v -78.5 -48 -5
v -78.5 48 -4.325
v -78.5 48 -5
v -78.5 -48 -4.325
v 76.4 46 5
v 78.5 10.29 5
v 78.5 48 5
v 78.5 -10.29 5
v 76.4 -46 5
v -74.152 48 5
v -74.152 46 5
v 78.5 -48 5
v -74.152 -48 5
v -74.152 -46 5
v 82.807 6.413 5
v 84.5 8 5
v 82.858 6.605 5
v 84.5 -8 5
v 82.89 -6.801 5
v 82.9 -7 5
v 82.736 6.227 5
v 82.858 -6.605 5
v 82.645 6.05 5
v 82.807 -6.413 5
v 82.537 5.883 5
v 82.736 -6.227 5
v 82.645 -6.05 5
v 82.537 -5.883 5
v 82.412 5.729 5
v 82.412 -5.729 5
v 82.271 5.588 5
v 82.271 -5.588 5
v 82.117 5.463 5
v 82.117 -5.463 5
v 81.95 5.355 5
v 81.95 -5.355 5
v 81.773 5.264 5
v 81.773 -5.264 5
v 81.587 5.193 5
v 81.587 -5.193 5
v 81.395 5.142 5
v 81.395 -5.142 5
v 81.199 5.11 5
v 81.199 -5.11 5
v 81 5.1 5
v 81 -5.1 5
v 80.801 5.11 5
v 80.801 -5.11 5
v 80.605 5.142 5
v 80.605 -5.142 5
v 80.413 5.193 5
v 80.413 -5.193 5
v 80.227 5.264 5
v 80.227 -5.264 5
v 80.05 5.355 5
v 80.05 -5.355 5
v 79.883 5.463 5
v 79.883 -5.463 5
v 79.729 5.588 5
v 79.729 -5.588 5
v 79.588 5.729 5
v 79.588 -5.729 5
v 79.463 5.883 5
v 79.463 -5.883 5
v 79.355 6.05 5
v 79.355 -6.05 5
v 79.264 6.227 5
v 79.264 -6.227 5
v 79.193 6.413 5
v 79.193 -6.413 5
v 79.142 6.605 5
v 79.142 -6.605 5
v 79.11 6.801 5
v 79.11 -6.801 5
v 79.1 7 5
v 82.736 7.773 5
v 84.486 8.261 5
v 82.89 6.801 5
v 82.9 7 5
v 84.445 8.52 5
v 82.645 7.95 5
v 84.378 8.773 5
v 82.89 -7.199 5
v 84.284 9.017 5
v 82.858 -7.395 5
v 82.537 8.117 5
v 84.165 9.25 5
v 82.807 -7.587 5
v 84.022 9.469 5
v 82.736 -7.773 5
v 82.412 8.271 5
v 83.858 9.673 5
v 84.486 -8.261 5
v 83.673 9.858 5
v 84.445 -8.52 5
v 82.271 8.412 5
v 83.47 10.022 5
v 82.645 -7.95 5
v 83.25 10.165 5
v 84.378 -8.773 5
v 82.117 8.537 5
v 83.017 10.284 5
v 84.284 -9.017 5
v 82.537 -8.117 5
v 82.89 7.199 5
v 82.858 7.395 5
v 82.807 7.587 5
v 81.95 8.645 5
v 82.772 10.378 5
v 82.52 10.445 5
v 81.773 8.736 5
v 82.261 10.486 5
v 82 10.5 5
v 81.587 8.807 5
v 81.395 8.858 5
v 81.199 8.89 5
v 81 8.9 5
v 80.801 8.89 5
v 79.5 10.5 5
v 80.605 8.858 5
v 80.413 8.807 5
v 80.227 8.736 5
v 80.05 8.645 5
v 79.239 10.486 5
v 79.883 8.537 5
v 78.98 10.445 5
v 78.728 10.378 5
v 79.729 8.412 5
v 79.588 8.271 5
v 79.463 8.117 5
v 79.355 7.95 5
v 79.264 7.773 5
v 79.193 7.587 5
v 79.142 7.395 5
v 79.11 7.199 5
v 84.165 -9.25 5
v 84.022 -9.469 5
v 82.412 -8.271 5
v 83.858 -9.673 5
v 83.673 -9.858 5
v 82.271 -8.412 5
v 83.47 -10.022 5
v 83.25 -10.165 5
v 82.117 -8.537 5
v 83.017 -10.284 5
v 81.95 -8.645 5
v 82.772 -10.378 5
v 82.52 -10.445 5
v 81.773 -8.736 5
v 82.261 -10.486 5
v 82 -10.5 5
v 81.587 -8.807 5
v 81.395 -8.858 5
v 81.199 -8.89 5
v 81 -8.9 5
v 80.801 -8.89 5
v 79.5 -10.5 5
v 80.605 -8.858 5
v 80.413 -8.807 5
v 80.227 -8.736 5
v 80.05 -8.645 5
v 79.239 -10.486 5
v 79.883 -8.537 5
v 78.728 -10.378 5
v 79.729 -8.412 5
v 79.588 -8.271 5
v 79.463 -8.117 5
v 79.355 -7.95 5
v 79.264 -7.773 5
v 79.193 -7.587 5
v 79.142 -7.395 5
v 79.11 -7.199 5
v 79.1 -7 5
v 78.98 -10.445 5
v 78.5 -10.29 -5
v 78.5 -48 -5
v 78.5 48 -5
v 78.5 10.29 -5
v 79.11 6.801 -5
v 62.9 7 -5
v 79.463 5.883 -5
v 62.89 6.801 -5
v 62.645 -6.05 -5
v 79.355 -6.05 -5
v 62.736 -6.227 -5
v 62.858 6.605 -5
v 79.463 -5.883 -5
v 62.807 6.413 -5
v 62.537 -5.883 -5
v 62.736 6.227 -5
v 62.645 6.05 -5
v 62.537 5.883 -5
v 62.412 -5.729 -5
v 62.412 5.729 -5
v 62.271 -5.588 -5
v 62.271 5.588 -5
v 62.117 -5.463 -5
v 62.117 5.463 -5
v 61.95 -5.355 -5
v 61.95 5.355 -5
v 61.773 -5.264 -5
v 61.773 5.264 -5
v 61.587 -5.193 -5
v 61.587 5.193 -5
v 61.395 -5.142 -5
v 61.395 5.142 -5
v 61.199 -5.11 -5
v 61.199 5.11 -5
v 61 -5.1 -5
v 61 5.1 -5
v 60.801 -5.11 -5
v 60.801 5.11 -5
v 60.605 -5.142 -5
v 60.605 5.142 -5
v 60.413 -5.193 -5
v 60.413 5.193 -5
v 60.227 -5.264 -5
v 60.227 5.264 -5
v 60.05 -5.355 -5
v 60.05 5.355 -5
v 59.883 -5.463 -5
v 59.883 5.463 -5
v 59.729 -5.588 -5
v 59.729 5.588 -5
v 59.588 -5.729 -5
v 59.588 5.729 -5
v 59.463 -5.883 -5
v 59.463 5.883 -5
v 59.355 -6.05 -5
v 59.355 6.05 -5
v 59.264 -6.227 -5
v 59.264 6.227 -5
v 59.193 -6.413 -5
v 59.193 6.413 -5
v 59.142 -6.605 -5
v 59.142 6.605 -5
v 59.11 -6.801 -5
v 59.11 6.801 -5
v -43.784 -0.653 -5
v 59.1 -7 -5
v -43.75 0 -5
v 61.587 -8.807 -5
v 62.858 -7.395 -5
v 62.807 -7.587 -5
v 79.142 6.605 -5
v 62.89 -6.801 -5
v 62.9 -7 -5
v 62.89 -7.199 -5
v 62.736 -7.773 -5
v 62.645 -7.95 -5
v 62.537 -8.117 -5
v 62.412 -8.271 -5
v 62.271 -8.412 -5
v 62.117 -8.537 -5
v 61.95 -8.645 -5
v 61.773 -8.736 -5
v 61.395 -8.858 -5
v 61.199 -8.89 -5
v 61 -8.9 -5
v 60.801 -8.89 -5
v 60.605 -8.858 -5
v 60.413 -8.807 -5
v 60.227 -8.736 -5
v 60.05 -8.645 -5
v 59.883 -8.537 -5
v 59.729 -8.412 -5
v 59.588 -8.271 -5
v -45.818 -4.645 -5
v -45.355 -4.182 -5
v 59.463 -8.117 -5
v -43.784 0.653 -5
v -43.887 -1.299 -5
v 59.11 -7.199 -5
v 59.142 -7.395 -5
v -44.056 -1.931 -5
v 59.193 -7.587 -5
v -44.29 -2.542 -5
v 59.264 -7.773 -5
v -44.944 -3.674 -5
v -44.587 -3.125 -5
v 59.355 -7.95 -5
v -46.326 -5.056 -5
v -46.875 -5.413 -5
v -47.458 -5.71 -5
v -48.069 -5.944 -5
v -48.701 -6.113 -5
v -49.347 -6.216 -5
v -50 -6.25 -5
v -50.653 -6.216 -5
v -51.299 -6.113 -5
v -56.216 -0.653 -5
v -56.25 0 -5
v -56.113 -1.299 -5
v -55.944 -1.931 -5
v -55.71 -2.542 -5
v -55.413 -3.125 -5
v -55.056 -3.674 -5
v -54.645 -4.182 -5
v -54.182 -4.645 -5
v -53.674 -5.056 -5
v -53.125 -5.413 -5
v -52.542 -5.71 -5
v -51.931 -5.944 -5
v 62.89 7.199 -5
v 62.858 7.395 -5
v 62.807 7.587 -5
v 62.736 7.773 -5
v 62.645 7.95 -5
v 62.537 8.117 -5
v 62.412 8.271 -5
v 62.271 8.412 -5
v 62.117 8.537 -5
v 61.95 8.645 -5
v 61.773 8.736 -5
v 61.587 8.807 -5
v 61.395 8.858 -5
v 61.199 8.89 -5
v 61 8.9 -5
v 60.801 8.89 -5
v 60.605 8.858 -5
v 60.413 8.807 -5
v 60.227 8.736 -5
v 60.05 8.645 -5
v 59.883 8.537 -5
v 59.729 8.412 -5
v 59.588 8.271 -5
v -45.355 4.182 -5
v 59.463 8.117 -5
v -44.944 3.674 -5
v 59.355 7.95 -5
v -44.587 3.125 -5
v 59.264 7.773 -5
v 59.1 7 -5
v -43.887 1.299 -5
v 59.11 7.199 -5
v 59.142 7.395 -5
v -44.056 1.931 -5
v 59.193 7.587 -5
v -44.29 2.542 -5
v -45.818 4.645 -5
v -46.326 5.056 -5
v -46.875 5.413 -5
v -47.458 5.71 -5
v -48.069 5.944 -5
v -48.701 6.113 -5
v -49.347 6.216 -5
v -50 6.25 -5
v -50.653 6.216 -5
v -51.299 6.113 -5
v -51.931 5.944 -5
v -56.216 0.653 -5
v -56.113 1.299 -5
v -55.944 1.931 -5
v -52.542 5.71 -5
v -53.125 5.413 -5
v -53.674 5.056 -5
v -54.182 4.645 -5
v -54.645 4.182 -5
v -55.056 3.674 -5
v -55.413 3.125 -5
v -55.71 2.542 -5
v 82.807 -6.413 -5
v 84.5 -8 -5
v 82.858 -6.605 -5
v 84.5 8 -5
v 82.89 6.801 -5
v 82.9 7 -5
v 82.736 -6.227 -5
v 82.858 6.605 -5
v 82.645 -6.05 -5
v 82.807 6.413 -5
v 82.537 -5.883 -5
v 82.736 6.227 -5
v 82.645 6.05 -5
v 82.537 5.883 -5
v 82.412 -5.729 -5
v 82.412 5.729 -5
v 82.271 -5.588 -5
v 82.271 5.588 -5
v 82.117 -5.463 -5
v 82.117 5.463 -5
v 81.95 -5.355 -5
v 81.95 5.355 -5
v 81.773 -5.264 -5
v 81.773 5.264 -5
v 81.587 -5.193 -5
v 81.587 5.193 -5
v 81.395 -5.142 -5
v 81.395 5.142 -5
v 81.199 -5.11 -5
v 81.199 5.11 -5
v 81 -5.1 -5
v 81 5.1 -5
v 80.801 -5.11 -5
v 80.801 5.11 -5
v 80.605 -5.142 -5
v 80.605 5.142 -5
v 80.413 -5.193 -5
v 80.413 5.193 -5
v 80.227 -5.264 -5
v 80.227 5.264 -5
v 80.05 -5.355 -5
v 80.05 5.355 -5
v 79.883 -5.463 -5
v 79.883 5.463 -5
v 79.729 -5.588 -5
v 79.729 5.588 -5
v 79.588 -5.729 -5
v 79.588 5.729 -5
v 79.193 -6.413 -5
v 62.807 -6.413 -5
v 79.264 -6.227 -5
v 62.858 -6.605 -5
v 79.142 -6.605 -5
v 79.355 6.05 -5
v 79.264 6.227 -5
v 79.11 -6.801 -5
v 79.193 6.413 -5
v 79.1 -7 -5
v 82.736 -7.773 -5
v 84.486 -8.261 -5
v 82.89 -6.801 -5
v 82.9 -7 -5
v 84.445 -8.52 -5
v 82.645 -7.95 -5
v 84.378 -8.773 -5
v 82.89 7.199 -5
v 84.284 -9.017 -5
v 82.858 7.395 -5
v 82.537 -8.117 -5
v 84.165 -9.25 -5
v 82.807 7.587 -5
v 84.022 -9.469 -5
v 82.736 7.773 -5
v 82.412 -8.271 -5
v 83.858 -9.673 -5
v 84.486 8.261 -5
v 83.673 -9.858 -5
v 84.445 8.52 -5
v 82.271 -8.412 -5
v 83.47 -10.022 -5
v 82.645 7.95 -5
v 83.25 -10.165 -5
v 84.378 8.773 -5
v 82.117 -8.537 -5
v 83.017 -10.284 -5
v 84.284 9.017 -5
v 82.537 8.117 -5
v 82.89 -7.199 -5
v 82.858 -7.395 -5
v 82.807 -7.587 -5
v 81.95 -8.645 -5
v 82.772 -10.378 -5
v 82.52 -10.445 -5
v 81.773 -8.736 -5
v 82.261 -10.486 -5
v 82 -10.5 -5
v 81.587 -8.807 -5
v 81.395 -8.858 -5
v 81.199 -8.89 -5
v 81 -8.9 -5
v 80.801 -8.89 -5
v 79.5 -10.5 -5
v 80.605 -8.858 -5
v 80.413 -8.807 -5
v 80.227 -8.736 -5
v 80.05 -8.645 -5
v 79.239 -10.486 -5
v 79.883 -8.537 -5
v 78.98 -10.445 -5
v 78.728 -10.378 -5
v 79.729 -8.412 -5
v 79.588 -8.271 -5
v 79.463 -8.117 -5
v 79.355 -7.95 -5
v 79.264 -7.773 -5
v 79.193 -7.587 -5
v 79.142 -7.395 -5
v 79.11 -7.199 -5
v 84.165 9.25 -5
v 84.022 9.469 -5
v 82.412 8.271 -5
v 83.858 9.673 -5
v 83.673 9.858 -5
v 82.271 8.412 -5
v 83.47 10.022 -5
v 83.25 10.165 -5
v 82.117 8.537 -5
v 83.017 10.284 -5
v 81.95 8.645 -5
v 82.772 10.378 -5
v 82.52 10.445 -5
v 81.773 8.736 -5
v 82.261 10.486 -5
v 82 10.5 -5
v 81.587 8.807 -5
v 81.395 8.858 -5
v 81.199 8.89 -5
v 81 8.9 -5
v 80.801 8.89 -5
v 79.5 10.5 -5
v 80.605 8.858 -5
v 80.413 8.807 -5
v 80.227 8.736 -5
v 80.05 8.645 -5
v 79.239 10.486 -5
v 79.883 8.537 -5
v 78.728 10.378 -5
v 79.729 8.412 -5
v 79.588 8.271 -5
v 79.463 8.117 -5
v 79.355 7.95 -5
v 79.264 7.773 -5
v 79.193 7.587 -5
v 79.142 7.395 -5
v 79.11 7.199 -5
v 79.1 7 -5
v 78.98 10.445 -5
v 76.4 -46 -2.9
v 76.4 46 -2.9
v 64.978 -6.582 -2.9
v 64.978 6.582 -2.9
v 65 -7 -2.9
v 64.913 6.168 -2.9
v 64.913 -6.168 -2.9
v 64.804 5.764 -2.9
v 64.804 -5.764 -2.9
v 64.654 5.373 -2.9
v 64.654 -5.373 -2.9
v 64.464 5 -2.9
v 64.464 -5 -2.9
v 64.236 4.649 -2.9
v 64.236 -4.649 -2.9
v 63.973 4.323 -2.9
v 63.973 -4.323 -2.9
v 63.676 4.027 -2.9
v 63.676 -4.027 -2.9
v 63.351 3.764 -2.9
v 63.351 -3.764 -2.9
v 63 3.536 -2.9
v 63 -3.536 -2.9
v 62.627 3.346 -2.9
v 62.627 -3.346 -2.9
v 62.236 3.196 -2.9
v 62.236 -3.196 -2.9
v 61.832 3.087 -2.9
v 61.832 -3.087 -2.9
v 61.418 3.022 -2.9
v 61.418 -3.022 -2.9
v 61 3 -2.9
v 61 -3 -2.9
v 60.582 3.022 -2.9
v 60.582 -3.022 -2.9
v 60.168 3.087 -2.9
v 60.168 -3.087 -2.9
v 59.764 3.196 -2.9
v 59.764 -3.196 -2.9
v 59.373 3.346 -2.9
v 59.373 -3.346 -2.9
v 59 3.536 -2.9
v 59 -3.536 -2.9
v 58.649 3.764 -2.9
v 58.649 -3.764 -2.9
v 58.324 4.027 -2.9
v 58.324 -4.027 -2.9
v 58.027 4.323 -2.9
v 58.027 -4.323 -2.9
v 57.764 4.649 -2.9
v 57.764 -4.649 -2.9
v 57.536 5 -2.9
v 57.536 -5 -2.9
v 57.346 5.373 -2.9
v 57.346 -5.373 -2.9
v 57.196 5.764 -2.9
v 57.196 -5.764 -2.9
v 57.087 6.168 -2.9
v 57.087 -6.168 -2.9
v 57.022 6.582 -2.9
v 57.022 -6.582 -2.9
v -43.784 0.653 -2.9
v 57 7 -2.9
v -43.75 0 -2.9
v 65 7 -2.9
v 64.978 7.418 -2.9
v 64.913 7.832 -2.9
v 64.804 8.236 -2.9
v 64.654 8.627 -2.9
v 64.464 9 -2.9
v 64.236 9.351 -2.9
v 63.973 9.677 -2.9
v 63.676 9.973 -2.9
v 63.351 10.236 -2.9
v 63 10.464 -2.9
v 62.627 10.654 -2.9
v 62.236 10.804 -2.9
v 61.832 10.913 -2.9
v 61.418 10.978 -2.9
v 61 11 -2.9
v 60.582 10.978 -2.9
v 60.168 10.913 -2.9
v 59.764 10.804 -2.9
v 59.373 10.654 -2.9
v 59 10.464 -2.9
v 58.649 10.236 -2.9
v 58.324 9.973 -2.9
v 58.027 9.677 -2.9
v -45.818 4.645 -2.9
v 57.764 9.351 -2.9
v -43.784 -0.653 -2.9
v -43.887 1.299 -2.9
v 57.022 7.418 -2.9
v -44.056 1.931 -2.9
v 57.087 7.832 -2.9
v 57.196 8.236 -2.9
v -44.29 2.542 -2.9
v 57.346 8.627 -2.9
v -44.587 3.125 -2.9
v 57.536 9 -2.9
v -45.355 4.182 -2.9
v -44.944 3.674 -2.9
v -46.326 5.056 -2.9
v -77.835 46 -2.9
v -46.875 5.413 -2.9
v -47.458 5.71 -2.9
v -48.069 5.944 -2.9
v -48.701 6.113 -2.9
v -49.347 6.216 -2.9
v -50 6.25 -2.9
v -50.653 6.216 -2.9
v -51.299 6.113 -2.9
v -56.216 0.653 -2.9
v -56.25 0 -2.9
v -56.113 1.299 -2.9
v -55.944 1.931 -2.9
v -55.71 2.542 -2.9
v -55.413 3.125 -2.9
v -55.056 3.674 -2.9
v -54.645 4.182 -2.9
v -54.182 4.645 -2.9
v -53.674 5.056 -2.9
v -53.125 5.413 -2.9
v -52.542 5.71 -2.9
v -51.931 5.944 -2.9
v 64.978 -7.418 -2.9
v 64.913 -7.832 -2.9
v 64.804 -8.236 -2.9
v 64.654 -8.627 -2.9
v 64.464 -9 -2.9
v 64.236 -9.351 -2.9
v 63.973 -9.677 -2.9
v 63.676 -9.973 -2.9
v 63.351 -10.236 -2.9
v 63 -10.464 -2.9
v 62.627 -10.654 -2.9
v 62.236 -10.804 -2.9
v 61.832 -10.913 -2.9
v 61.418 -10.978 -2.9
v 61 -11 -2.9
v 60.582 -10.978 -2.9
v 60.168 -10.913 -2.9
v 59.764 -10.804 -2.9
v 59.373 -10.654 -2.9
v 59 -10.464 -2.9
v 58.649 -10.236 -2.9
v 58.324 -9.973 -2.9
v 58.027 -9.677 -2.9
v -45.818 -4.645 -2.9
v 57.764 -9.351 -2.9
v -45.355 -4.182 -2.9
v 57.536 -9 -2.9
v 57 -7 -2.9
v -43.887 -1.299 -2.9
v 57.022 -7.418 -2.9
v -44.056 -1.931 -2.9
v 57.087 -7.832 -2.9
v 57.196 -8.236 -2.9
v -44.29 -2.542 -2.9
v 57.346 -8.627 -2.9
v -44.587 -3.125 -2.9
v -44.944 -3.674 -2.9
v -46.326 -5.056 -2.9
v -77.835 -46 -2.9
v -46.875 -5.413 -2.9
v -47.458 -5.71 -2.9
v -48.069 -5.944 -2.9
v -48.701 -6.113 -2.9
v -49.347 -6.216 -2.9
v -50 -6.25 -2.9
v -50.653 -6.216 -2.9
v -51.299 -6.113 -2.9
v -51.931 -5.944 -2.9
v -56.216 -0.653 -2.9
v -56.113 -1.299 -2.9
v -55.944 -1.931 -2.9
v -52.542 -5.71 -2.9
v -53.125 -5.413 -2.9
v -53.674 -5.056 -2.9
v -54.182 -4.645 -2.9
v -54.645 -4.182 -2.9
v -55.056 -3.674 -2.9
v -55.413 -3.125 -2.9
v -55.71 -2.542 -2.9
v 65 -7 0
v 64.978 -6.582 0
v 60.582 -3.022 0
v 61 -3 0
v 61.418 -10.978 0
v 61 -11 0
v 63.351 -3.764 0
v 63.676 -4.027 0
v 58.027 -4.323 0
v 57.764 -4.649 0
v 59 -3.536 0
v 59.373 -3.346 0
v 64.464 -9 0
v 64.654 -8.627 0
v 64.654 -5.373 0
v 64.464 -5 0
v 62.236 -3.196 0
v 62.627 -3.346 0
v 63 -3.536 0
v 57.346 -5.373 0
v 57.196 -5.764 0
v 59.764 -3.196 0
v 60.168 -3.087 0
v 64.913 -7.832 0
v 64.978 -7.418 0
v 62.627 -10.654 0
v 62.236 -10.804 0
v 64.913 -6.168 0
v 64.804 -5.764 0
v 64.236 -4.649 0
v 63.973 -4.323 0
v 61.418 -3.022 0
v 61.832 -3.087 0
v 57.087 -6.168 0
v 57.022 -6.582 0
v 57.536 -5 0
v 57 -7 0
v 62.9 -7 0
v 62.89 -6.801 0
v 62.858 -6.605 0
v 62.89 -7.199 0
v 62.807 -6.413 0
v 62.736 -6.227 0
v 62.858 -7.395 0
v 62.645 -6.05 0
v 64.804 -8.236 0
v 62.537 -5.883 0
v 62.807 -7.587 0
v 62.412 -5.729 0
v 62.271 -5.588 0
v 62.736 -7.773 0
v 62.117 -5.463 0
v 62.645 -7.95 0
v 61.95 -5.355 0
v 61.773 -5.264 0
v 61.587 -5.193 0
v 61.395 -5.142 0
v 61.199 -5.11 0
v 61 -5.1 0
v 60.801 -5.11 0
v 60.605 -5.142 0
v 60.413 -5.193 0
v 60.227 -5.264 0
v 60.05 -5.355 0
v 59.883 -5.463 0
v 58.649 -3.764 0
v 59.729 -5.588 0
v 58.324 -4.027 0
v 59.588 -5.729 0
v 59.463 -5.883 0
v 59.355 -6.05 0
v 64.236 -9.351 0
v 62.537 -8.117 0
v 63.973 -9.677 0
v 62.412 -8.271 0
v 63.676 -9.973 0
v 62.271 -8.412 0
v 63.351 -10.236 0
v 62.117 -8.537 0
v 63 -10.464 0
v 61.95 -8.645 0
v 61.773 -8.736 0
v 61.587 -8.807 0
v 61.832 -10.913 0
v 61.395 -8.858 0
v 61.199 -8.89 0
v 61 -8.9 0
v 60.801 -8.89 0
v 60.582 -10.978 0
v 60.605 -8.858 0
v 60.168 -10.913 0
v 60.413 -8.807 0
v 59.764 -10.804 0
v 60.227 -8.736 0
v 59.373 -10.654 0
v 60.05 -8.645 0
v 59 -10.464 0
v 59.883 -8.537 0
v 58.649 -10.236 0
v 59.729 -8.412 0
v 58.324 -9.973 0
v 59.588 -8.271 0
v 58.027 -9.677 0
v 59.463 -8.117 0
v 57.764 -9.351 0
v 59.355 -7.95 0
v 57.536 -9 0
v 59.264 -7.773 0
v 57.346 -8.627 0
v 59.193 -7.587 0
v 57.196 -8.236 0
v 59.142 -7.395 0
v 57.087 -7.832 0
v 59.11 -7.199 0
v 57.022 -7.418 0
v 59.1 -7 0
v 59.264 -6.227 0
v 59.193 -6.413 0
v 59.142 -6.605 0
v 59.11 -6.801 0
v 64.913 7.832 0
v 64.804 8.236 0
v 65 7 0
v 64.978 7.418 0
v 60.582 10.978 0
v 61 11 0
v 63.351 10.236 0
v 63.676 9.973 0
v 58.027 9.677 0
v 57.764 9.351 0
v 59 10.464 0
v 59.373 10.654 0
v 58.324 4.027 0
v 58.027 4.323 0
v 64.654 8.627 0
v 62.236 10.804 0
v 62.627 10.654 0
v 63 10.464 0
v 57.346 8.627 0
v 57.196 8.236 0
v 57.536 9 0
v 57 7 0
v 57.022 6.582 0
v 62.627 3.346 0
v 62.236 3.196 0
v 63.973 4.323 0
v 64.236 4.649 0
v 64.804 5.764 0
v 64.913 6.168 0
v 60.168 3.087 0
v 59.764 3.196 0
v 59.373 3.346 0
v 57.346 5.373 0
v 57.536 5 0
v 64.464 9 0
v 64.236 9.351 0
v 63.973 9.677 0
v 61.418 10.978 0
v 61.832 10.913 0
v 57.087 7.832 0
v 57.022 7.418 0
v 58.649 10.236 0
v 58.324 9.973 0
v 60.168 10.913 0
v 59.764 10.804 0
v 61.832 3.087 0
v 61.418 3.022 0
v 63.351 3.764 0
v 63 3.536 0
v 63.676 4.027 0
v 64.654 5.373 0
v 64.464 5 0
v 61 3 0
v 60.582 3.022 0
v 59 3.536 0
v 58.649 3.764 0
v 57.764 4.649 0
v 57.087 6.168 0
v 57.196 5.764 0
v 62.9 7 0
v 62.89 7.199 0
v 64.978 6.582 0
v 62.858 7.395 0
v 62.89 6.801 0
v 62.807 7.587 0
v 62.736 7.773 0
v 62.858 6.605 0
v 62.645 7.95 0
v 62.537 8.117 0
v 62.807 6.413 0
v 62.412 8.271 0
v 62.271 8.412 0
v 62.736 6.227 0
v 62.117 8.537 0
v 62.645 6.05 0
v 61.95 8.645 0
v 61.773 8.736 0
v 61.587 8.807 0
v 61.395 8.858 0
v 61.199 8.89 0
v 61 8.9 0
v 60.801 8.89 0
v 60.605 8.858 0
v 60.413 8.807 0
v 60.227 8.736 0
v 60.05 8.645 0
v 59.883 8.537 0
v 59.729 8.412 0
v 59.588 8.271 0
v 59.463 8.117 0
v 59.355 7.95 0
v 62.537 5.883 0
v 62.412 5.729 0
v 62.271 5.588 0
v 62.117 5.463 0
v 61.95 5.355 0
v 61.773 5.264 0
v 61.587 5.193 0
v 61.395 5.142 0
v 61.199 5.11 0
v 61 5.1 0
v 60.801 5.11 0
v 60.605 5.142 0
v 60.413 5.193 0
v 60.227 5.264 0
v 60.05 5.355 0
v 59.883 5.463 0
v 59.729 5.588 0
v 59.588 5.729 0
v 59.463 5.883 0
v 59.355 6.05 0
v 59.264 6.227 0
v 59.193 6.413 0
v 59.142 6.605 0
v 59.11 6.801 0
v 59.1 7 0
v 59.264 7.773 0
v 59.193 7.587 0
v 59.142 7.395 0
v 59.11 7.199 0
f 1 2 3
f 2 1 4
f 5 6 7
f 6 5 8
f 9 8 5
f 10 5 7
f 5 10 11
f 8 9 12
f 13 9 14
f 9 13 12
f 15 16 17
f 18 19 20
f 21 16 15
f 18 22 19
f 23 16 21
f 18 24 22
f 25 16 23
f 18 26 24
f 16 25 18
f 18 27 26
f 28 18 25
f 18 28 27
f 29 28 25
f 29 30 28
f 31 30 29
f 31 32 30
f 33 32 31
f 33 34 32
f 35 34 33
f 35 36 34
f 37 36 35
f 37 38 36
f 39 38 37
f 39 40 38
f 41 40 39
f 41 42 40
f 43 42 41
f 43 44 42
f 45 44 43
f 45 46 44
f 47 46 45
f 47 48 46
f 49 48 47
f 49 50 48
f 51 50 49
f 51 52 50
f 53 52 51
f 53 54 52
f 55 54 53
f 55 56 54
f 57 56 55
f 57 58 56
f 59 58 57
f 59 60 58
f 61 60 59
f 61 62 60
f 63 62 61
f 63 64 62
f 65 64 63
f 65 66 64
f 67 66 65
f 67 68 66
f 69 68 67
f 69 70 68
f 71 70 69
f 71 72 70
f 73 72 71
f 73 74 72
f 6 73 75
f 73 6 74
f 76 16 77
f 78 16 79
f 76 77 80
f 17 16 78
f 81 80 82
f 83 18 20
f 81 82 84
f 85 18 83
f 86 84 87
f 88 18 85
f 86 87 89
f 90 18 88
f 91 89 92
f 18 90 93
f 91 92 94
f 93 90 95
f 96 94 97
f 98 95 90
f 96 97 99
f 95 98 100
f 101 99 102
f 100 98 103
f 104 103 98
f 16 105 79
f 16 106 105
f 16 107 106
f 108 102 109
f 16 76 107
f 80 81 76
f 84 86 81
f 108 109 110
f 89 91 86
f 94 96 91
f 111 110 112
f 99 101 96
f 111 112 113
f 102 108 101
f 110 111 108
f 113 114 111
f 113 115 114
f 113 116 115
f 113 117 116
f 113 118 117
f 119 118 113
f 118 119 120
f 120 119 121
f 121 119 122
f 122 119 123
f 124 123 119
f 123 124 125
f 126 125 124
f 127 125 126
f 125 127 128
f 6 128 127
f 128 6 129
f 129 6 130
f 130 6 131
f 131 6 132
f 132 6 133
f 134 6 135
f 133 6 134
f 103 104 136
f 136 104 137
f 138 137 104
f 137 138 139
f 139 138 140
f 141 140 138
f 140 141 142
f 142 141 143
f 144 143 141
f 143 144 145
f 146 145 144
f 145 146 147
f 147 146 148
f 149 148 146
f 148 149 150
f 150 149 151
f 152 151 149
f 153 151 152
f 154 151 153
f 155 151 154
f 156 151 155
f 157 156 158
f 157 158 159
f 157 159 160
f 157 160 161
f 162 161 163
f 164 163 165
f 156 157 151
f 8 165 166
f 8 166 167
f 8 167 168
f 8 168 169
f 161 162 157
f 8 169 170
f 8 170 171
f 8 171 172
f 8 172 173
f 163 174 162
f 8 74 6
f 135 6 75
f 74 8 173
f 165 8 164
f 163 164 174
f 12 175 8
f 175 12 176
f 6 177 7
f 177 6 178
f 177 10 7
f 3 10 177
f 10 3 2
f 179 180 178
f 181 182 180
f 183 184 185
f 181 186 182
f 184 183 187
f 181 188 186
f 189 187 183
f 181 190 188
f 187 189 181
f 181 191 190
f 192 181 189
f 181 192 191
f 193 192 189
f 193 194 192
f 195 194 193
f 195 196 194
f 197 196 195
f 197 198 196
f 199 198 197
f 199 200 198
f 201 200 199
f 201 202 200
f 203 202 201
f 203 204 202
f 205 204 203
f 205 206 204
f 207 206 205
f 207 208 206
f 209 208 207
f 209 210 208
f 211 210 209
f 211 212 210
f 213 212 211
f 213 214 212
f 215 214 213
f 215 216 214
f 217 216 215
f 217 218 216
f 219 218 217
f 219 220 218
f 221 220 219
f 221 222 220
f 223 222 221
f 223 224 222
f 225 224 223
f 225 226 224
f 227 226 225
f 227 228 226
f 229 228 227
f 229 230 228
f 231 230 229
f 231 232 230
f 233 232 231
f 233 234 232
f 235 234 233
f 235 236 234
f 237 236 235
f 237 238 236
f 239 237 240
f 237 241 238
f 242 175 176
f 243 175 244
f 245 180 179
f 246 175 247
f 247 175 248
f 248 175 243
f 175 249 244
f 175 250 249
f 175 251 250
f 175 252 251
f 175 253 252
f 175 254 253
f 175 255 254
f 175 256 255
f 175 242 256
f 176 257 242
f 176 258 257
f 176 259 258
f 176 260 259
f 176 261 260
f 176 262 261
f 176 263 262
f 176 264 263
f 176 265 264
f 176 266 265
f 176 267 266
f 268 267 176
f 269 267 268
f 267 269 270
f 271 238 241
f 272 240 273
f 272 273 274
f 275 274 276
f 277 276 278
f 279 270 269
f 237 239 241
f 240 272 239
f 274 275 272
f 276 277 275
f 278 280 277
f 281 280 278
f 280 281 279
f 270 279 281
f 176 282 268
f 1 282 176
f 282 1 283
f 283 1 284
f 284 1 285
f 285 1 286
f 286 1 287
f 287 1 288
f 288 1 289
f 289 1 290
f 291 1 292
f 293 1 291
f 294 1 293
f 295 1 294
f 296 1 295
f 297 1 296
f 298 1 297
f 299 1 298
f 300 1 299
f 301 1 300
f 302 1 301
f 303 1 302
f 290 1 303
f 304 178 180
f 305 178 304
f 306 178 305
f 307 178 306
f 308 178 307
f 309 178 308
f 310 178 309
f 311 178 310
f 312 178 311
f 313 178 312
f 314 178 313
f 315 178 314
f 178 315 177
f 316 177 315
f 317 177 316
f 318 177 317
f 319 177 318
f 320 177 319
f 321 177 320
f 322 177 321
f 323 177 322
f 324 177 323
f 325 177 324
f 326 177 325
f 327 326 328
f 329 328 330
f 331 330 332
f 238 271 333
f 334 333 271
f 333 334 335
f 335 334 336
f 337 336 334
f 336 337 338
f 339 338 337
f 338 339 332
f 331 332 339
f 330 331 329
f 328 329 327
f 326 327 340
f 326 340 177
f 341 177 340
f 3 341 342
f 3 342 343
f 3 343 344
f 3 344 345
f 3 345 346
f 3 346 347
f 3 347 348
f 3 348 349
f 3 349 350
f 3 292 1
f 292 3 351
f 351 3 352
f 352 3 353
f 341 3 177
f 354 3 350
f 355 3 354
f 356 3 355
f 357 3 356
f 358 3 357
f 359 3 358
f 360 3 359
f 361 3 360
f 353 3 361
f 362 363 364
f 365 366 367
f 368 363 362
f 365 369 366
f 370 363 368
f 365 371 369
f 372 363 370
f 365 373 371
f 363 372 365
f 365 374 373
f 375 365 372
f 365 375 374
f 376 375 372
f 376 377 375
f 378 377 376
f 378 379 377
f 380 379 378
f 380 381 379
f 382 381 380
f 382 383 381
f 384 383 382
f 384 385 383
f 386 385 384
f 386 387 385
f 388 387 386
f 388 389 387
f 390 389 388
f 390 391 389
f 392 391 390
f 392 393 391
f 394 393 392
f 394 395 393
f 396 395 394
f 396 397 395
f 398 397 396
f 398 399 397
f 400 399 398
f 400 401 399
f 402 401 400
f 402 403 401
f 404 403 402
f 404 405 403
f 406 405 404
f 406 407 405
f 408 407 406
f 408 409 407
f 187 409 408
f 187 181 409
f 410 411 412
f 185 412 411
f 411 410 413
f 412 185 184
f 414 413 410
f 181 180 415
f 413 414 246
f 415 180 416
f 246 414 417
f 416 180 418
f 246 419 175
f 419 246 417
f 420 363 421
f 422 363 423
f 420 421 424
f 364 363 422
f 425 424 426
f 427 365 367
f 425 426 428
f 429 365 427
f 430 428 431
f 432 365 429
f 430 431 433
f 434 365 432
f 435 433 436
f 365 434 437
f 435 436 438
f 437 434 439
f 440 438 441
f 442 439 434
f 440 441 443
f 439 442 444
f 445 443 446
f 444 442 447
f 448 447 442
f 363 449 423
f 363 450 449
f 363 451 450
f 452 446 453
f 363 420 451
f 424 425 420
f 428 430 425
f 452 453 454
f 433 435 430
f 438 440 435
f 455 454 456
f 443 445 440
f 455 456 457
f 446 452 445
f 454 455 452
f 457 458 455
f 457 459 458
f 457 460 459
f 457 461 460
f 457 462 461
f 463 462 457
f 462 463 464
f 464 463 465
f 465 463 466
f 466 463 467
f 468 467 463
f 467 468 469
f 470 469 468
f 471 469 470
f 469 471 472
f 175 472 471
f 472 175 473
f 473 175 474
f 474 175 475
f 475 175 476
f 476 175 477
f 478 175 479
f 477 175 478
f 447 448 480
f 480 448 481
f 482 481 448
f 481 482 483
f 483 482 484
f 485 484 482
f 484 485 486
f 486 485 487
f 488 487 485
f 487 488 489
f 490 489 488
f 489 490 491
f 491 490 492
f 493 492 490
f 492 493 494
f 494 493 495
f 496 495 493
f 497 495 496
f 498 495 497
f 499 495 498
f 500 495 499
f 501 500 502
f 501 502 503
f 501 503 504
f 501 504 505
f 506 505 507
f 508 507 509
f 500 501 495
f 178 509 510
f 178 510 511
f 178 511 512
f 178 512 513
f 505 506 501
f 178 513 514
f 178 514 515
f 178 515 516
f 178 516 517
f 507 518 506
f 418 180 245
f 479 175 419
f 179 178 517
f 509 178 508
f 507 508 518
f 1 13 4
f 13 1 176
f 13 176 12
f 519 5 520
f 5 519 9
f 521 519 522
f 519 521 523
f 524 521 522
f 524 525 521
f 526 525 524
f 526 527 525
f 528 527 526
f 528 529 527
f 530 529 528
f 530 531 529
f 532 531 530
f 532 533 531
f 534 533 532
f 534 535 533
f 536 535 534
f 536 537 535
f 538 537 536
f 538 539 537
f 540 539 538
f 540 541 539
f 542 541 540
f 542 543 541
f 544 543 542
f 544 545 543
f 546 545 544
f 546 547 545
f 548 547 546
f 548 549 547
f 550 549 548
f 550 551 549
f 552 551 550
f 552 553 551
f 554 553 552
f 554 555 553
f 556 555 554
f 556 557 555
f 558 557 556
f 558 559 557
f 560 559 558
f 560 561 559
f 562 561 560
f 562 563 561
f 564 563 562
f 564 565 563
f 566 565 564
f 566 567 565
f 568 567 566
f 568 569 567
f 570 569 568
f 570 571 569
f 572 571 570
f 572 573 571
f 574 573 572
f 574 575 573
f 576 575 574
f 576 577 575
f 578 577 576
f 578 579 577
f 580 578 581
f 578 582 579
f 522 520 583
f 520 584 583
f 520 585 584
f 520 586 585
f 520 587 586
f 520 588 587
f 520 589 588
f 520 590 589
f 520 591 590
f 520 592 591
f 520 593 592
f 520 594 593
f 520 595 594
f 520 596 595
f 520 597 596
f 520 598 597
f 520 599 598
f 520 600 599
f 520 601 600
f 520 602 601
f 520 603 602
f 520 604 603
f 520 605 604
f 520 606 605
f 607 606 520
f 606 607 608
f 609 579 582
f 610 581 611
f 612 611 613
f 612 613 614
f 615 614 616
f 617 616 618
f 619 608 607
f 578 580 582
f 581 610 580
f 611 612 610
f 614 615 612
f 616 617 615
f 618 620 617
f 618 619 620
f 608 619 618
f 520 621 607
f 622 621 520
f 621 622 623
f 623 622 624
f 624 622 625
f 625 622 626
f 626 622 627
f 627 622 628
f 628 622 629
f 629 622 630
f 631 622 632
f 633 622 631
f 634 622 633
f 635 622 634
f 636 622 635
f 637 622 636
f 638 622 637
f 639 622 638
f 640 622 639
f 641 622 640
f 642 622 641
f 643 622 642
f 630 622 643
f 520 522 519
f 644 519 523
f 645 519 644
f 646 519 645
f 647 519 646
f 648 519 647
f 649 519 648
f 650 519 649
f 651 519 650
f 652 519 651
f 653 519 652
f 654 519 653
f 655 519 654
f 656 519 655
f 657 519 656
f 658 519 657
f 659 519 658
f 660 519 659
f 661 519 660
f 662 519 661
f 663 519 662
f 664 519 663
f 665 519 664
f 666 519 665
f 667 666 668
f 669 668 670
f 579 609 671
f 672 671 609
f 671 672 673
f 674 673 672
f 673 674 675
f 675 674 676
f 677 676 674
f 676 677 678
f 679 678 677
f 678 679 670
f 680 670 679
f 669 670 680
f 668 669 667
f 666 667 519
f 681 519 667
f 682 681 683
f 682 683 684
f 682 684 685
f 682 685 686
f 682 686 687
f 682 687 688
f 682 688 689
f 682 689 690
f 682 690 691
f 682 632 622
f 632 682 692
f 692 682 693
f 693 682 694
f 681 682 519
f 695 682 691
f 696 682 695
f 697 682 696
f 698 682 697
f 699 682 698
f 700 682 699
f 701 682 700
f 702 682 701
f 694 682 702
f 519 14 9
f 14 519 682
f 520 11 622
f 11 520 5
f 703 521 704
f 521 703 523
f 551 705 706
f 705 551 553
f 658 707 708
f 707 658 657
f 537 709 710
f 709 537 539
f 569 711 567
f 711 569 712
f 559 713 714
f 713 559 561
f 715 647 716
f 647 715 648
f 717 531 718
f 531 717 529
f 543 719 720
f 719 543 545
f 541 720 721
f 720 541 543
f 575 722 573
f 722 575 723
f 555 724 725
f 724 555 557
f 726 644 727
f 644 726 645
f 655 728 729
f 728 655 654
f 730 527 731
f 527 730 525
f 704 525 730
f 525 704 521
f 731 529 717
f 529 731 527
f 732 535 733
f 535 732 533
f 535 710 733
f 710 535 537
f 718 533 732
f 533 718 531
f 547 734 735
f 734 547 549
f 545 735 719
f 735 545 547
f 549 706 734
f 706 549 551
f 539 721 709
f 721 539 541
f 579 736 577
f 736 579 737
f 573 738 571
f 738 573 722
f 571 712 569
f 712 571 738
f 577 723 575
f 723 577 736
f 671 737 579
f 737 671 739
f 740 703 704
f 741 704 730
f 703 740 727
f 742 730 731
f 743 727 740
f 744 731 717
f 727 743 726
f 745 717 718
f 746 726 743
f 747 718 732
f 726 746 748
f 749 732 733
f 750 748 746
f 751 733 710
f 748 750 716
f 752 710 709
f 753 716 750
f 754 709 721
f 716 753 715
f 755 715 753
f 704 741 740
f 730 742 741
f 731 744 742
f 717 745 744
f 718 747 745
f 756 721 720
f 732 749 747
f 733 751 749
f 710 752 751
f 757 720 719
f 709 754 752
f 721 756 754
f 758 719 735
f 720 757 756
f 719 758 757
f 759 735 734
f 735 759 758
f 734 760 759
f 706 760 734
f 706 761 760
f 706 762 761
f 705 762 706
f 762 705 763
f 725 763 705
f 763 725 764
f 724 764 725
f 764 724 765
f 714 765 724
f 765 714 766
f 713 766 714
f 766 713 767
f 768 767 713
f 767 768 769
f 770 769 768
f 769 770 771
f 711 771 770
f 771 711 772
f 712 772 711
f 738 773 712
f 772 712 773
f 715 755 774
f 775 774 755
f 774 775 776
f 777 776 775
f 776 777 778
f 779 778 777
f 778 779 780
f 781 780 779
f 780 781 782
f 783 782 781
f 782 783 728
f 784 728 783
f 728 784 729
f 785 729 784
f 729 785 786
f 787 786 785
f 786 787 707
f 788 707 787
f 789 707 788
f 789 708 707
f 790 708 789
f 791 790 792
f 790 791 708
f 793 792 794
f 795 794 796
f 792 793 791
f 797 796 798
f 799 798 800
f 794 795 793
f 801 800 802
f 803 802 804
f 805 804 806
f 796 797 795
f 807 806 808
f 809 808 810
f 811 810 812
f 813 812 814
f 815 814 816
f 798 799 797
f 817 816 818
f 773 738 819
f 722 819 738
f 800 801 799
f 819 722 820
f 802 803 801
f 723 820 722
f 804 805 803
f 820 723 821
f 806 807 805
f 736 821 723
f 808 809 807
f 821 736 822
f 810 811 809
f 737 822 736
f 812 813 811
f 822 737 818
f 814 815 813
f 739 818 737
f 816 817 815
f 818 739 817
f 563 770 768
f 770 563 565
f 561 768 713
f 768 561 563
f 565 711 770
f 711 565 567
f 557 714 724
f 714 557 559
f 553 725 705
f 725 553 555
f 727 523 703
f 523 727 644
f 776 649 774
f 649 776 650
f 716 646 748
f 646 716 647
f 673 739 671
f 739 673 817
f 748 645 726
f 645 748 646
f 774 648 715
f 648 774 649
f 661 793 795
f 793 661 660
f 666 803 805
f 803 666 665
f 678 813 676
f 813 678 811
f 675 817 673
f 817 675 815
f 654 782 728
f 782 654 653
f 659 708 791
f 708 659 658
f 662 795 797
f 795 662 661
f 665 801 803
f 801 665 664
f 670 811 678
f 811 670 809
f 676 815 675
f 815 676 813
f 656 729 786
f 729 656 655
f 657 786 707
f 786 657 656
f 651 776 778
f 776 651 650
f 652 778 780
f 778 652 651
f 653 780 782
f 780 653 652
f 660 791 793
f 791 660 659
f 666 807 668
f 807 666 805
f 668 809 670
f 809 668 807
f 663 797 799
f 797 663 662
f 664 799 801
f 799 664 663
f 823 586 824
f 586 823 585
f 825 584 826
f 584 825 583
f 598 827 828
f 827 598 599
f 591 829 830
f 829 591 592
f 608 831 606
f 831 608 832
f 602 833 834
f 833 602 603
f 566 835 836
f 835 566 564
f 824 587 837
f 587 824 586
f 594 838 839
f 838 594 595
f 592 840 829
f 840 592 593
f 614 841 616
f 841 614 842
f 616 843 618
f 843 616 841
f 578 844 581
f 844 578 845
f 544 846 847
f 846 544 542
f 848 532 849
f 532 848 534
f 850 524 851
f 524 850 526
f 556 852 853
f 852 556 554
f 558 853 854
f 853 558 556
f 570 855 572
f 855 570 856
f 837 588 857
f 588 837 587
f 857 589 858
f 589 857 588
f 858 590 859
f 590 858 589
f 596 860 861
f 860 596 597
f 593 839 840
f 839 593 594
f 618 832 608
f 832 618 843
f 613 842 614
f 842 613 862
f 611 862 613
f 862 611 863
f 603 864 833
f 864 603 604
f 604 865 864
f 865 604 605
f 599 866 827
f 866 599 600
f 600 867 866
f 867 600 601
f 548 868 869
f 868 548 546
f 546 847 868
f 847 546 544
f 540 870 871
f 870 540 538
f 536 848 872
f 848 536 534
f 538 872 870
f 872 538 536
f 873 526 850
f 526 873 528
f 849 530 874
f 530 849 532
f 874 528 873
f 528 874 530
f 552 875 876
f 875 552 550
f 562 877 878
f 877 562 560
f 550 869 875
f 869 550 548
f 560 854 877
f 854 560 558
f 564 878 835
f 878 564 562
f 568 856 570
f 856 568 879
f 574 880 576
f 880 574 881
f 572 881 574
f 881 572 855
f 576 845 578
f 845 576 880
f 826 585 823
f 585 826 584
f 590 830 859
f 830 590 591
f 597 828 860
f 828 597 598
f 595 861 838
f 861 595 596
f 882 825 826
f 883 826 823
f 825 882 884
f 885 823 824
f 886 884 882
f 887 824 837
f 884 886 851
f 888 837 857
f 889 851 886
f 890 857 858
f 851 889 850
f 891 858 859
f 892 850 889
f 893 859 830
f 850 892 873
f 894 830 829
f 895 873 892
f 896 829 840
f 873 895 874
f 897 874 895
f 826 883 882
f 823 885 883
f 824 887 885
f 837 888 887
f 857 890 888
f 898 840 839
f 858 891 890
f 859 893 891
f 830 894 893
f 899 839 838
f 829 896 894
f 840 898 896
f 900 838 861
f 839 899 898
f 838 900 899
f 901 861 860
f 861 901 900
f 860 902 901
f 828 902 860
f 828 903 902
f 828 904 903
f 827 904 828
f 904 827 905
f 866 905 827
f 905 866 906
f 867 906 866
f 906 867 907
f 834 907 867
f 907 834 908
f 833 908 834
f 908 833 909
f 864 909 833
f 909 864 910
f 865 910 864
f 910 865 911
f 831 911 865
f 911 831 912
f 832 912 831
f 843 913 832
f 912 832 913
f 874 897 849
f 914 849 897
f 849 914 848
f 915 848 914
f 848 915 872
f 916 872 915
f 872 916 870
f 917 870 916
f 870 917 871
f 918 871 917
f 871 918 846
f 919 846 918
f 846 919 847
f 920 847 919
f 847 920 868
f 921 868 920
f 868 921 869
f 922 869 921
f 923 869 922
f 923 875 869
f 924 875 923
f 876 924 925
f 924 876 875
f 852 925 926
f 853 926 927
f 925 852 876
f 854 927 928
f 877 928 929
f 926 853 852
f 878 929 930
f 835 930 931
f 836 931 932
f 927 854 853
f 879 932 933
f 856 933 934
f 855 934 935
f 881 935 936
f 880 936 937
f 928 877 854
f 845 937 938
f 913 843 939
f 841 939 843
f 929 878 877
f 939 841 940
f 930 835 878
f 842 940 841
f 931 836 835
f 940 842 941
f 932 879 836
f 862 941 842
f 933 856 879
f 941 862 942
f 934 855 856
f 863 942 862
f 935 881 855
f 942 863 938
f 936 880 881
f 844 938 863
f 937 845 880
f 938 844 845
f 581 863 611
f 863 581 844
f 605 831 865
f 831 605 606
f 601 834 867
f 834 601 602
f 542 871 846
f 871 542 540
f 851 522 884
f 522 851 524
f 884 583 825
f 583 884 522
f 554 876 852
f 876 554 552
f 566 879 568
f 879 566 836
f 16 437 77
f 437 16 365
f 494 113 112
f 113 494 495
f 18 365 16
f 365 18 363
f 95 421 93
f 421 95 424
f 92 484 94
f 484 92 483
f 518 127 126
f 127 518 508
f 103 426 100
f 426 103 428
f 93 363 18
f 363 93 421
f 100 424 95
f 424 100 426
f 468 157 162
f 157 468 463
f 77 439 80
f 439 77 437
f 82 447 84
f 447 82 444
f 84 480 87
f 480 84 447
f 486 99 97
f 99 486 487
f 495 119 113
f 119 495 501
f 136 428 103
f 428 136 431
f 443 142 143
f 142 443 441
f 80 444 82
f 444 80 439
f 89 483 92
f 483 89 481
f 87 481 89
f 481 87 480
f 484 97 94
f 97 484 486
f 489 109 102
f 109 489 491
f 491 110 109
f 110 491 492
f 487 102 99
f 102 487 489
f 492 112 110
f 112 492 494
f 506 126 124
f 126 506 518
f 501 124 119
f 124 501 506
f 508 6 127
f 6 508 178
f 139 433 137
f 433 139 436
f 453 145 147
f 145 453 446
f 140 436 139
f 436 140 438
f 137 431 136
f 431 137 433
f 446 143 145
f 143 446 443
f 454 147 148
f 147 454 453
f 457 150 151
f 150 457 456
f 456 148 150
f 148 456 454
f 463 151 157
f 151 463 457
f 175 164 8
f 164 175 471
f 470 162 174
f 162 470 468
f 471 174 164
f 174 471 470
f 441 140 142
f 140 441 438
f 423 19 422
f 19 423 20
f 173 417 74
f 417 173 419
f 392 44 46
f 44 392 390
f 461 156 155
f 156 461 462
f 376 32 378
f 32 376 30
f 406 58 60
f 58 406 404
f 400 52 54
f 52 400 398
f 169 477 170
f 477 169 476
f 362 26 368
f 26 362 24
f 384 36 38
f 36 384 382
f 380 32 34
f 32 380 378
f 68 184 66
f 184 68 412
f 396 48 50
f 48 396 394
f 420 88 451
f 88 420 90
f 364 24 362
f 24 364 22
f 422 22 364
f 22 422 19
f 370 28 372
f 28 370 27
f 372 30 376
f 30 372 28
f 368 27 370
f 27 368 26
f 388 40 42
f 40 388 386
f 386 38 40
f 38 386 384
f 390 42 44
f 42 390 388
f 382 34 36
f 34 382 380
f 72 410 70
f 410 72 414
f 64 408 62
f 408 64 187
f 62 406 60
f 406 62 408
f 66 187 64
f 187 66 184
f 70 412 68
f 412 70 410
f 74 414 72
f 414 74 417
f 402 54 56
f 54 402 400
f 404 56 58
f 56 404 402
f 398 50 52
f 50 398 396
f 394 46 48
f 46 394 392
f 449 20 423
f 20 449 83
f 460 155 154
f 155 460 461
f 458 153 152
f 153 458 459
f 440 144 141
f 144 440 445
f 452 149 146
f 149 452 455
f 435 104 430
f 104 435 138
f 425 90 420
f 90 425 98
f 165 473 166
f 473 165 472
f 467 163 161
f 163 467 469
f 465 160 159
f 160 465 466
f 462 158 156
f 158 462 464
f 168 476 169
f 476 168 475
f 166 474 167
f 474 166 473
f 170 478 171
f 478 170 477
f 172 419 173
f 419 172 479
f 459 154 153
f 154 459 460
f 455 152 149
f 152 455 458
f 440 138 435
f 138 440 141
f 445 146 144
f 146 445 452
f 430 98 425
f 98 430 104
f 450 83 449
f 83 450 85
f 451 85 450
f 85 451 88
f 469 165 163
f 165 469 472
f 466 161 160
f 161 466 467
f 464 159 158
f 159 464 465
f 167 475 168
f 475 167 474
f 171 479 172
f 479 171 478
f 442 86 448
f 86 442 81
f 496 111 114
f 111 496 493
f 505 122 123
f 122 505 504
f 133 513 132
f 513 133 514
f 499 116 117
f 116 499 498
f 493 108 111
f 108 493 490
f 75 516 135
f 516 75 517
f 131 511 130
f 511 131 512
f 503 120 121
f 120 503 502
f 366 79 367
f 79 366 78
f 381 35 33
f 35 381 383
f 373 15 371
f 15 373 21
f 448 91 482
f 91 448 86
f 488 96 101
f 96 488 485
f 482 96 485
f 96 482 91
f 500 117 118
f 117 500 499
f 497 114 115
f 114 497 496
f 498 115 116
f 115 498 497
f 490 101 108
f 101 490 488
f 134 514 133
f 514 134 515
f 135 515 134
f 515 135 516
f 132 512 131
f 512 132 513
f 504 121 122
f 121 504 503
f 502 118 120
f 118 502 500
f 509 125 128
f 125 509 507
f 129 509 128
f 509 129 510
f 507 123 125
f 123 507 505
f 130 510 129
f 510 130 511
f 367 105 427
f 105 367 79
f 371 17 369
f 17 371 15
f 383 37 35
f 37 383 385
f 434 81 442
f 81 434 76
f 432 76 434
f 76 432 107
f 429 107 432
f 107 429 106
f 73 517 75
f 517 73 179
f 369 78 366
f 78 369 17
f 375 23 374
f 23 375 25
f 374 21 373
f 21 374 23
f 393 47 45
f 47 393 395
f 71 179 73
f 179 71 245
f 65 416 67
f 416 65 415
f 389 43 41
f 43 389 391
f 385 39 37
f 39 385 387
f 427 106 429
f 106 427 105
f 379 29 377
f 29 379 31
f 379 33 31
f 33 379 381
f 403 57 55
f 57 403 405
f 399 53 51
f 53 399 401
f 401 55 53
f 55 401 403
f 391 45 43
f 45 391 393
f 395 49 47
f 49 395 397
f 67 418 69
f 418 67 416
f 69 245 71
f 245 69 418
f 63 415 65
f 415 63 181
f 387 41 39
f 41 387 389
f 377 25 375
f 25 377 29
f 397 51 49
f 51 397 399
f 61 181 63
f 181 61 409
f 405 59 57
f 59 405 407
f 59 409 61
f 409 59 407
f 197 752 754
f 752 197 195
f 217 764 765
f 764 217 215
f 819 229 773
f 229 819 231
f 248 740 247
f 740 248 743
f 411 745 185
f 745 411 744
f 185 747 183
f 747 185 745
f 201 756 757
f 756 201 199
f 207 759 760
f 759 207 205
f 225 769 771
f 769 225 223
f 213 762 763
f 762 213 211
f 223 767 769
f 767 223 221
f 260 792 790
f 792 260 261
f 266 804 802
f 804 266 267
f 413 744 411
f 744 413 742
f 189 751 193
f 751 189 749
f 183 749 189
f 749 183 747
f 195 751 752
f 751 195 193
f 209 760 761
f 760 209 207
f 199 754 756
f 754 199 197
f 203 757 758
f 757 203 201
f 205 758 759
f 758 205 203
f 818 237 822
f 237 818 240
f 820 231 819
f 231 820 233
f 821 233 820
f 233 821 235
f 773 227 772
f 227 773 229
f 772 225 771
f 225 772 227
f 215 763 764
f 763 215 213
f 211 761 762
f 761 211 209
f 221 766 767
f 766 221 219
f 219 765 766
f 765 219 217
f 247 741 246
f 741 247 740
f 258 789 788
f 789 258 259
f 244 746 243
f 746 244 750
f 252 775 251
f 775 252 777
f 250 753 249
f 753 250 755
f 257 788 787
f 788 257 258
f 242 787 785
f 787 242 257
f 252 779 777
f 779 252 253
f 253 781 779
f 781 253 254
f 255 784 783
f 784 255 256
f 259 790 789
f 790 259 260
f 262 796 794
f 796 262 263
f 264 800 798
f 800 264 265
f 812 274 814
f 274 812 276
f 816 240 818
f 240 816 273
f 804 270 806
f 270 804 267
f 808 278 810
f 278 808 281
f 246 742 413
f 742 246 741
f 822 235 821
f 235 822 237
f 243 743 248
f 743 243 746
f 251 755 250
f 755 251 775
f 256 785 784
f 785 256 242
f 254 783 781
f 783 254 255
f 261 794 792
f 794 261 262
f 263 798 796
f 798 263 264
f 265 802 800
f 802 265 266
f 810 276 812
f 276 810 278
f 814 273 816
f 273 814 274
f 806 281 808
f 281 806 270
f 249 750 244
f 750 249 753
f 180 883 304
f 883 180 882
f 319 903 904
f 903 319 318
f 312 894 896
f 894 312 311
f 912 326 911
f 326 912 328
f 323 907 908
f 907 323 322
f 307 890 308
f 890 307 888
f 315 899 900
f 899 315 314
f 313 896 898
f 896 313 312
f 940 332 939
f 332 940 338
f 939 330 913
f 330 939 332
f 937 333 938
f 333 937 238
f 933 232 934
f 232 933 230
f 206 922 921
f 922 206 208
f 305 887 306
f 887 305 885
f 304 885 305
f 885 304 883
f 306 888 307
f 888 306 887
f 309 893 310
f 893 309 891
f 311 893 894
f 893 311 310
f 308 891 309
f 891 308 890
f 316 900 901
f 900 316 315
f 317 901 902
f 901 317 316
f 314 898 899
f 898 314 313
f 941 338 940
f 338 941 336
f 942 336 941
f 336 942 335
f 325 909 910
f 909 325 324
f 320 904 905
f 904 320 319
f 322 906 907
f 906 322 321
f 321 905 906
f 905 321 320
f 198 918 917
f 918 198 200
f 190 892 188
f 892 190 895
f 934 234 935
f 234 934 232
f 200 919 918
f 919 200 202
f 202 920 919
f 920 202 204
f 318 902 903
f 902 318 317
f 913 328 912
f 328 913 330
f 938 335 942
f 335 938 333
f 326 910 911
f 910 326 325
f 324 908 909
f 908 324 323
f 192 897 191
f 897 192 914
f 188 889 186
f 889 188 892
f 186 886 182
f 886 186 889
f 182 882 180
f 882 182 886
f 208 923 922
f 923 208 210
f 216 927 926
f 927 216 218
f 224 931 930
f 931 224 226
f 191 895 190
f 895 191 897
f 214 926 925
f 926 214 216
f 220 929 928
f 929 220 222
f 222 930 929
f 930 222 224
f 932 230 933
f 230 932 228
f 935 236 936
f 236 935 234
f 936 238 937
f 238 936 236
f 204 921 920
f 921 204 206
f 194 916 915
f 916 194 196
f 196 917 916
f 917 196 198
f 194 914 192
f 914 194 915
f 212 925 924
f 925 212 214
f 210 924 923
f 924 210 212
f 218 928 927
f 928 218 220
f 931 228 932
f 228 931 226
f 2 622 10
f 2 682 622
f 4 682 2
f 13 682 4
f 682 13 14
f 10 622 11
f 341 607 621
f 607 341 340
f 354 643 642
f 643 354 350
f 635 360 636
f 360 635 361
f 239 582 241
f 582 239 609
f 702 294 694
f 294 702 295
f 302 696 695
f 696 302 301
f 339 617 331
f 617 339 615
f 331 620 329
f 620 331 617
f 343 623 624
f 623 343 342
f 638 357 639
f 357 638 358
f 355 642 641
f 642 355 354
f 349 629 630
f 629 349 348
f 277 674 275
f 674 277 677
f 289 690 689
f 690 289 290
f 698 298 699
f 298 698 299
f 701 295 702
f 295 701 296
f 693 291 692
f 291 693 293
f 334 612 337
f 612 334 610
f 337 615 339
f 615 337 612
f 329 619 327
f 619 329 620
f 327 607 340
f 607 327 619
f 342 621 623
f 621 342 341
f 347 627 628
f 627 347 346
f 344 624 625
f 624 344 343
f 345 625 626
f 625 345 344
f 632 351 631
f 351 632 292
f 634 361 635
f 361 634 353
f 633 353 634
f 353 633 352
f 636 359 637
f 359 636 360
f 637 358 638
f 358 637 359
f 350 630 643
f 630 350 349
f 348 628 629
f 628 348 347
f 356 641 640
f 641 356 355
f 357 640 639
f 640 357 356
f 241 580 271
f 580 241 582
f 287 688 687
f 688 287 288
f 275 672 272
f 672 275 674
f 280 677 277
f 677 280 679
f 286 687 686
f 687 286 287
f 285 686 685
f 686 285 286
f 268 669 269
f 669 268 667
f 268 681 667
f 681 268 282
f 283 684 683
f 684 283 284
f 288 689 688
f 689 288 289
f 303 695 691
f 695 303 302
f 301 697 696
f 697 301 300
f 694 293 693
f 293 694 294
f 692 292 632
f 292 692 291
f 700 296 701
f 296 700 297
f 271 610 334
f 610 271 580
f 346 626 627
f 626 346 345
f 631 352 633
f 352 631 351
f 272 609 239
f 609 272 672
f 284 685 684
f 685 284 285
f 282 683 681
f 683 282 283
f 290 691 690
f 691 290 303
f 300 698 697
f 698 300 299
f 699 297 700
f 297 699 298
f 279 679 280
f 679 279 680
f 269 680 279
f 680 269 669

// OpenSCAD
right_cover();

module right_cover(){
    difference(){
        generic_cover();
        translate([-50, 0, -8]) rotate([0, 0, 0]) cylinder(d=12.5, h=6, $fn=60);
    }
}

module generic_cover(){
    difference(){
        union(){
        difference(){
            cube([157,96,10], center=true);
            translate([-1.1,0,1.1]) cube([155,92,8], center=true);
        }
            hull() for(X=[2.5,0], Y=[-8,8]) translate([82-X,Y,-5]) cylinder(d=5, h=10, $fn=60);
        for(Y=[-7,7]) translate([61,Y,-5]) cylinder(d=8, h=5, $fn=60);
        }
        translate([-82,0,0]) rotate([0,25,0]) cube([10,96.2,20], center=true);
        for(X=[0,20], Y=[-7,7]) translate([81-X,Y,-5.1]) cylinder(d=3.8, h=11, $fn=60);
    }
    
}
